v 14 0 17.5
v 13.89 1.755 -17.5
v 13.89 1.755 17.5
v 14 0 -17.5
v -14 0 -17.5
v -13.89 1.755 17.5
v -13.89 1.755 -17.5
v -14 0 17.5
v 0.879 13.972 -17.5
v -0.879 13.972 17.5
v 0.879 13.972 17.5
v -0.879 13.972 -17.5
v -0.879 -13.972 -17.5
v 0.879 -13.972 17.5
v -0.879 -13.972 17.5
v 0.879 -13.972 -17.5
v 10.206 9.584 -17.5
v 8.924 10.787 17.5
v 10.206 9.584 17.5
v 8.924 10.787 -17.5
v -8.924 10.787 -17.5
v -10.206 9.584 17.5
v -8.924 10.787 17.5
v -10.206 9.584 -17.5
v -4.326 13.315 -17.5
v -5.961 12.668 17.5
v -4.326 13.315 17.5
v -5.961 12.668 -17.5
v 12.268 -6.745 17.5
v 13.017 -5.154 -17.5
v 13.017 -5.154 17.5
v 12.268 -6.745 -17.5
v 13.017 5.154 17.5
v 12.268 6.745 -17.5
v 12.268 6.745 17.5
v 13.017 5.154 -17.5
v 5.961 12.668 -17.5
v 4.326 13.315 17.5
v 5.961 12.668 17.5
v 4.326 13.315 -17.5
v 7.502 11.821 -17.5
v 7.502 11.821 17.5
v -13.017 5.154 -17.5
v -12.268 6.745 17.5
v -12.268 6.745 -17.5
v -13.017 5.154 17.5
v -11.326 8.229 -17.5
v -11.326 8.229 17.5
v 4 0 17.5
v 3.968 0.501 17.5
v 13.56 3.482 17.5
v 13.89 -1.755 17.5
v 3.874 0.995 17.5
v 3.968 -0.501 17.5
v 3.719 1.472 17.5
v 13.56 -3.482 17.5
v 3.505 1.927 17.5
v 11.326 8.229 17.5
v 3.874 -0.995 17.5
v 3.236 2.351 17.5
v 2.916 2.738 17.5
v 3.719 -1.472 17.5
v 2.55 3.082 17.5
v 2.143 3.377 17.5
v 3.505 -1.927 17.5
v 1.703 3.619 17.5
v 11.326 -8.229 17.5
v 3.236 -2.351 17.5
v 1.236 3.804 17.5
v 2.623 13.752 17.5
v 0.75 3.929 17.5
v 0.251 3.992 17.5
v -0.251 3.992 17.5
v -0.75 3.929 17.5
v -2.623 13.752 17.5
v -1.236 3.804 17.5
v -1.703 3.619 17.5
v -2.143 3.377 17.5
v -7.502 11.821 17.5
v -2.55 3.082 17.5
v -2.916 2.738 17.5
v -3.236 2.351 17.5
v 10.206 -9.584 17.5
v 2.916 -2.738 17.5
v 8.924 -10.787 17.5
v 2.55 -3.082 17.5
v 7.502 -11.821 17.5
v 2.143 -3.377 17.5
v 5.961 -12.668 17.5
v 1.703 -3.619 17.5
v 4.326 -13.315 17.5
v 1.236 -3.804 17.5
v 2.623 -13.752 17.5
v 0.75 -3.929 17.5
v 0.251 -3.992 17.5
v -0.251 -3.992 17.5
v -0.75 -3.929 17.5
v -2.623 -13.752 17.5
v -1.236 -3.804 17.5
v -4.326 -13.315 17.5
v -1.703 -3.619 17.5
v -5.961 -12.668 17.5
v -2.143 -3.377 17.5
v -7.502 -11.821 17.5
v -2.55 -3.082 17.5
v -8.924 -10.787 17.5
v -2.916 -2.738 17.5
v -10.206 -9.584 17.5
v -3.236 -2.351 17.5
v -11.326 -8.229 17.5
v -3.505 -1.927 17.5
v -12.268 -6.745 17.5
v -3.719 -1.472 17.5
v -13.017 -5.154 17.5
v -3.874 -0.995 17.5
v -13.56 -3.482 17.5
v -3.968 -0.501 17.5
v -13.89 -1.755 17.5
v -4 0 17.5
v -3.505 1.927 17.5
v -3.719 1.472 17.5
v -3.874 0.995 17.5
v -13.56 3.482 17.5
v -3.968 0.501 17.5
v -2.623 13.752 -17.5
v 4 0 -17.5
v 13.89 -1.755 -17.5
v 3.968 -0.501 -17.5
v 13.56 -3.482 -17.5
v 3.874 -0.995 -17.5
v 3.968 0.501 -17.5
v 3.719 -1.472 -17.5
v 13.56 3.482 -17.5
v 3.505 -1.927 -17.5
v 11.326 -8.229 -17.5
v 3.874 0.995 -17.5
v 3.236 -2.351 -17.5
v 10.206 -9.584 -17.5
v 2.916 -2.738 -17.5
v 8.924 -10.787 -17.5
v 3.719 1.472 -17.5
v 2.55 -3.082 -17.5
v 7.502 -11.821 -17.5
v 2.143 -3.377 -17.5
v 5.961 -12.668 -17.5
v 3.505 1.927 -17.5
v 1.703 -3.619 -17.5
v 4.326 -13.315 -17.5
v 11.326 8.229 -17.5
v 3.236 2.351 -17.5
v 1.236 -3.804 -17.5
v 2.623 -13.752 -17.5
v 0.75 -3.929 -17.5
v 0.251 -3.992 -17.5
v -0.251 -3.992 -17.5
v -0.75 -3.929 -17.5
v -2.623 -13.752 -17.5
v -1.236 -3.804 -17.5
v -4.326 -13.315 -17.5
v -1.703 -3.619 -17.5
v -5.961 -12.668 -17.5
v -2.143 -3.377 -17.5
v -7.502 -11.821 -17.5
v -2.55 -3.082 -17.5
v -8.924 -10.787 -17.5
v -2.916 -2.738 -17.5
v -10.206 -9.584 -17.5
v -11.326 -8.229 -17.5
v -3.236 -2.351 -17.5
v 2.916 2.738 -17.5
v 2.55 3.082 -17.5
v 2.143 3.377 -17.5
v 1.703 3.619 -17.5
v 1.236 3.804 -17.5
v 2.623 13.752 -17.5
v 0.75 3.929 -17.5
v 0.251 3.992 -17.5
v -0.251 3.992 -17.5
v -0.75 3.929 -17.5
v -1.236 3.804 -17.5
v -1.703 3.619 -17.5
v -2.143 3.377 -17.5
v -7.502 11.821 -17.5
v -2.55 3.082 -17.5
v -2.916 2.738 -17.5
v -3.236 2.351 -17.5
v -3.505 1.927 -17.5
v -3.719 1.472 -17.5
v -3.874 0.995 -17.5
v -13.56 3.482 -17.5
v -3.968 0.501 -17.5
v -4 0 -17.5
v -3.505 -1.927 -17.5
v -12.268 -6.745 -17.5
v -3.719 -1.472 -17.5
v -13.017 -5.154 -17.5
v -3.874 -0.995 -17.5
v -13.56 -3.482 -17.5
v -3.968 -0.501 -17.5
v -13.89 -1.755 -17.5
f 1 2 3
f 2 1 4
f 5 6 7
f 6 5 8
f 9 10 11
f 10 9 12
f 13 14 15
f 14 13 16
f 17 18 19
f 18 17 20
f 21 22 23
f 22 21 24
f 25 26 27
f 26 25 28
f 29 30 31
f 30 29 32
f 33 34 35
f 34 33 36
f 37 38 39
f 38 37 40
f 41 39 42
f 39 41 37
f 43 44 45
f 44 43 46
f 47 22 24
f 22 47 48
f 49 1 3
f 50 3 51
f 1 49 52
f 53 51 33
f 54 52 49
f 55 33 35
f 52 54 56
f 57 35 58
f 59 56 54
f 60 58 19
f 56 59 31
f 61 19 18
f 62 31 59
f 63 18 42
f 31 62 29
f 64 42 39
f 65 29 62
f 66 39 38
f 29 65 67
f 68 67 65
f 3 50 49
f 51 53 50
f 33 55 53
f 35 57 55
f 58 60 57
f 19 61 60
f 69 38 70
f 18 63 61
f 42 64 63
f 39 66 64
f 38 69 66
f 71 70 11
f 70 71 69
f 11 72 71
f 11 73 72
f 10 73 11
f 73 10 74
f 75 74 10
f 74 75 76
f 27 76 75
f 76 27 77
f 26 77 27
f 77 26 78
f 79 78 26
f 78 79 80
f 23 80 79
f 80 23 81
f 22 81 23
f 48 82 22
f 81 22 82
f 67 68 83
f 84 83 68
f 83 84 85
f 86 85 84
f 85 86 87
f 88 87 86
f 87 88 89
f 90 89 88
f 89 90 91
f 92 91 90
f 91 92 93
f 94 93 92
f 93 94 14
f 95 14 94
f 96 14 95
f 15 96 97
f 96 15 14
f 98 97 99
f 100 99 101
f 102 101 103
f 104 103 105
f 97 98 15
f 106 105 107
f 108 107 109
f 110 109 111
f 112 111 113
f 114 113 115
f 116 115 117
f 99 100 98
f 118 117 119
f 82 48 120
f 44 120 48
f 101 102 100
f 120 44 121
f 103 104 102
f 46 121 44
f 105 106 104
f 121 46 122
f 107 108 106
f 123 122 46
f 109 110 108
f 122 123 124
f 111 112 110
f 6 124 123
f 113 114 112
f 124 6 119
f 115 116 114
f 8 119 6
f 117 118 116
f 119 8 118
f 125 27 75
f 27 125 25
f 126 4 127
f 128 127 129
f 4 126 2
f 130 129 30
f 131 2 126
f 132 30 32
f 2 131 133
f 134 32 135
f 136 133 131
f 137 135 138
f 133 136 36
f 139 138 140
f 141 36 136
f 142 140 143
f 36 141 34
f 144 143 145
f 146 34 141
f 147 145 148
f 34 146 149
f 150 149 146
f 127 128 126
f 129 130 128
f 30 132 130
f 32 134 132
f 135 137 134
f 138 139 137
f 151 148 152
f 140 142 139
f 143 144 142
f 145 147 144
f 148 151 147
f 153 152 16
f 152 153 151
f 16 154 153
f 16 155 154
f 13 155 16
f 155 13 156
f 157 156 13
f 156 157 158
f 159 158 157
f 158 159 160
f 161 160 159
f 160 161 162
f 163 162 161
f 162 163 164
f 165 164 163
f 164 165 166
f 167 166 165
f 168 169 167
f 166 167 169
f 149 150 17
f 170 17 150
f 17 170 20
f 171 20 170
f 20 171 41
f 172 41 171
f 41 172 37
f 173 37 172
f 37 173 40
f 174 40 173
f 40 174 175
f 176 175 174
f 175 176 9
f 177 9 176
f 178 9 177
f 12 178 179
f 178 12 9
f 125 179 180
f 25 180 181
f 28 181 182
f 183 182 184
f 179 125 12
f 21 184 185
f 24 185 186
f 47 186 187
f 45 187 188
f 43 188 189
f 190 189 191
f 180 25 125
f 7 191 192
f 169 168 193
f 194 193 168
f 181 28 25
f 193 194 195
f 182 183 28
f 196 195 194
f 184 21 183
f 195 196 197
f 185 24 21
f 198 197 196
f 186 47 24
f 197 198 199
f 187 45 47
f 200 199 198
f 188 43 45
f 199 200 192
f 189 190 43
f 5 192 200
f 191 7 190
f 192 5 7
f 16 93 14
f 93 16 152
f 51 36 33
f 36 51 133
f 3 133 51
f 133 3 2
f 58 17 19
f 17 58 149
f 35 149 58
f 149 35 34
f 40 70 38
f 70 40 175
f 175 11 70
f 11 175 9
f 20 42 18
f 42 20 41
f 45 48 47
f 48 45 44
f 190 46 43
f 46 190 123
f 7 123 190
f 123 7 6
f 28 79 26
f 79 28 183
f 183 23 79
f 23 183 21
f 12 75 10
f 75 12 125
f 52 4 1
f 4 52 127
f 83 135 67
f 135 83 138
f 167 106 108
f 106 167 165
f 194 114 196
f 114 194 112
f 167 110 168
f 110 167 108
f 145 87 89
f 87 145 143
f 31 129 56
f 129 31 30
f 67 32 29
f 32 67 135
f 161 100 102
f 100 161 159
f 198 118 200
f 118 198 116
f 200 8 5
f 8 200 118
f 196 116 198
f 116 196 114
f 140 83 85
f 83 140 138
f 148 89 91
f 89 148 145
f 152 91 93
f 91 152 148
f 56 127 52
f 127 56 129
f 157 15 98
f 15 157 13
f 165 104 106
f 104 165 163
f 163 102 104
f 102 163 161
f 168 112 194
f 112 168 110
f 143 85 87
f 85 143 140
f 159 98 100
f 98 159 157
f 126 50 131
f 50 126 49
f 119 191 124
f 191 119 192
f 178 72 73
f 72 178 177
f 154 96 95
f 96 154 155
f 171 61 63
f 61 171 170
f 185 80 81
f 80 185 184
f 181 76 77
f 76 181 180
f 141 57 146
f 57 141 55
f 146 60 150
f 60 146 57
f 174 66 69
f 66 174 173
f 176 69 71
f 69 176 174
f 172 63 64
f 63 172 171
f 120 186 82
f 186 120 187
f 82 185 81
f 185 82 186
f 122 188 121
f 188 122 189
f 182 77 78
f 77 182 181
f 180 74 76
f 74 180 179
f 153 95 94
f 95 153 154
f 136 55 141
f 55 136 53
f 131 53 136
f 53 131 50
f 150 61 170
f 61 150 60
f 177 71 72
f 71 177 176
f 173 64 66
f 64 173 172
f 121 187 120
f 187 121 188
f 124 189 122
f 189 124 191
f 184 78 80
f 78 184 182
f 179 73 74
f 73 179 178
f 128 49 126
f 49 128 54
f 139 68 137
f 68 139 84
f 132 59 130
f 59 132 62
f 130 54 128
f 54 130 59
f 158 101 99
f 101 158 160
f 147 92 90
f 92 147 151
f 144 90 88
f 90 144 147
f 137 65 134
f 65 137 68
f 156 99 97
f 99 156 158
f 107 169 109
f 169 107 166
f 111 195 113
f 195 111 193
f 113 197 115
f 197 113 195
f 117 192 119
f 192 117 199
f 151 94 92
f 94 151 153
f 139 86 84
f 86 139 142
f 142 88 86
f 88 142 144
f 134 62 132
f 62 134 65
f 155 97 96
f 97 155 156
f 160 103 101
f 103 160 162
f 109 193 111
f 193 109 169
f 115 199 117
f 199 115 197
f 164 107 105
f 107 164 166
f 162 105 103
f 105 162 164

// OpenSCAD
$fn = 50;


difference() {
	union() {
		translate(v = [0, 0, -17.5000000000]) {
			cylinder(h = 35, r = 14.0000000000);
		}
	}
	union() {
		translate(v = [0, 0, -100.0000000000]) {
			cylinder(h = 200, r = 4.0000000000);
		}
	}
}
